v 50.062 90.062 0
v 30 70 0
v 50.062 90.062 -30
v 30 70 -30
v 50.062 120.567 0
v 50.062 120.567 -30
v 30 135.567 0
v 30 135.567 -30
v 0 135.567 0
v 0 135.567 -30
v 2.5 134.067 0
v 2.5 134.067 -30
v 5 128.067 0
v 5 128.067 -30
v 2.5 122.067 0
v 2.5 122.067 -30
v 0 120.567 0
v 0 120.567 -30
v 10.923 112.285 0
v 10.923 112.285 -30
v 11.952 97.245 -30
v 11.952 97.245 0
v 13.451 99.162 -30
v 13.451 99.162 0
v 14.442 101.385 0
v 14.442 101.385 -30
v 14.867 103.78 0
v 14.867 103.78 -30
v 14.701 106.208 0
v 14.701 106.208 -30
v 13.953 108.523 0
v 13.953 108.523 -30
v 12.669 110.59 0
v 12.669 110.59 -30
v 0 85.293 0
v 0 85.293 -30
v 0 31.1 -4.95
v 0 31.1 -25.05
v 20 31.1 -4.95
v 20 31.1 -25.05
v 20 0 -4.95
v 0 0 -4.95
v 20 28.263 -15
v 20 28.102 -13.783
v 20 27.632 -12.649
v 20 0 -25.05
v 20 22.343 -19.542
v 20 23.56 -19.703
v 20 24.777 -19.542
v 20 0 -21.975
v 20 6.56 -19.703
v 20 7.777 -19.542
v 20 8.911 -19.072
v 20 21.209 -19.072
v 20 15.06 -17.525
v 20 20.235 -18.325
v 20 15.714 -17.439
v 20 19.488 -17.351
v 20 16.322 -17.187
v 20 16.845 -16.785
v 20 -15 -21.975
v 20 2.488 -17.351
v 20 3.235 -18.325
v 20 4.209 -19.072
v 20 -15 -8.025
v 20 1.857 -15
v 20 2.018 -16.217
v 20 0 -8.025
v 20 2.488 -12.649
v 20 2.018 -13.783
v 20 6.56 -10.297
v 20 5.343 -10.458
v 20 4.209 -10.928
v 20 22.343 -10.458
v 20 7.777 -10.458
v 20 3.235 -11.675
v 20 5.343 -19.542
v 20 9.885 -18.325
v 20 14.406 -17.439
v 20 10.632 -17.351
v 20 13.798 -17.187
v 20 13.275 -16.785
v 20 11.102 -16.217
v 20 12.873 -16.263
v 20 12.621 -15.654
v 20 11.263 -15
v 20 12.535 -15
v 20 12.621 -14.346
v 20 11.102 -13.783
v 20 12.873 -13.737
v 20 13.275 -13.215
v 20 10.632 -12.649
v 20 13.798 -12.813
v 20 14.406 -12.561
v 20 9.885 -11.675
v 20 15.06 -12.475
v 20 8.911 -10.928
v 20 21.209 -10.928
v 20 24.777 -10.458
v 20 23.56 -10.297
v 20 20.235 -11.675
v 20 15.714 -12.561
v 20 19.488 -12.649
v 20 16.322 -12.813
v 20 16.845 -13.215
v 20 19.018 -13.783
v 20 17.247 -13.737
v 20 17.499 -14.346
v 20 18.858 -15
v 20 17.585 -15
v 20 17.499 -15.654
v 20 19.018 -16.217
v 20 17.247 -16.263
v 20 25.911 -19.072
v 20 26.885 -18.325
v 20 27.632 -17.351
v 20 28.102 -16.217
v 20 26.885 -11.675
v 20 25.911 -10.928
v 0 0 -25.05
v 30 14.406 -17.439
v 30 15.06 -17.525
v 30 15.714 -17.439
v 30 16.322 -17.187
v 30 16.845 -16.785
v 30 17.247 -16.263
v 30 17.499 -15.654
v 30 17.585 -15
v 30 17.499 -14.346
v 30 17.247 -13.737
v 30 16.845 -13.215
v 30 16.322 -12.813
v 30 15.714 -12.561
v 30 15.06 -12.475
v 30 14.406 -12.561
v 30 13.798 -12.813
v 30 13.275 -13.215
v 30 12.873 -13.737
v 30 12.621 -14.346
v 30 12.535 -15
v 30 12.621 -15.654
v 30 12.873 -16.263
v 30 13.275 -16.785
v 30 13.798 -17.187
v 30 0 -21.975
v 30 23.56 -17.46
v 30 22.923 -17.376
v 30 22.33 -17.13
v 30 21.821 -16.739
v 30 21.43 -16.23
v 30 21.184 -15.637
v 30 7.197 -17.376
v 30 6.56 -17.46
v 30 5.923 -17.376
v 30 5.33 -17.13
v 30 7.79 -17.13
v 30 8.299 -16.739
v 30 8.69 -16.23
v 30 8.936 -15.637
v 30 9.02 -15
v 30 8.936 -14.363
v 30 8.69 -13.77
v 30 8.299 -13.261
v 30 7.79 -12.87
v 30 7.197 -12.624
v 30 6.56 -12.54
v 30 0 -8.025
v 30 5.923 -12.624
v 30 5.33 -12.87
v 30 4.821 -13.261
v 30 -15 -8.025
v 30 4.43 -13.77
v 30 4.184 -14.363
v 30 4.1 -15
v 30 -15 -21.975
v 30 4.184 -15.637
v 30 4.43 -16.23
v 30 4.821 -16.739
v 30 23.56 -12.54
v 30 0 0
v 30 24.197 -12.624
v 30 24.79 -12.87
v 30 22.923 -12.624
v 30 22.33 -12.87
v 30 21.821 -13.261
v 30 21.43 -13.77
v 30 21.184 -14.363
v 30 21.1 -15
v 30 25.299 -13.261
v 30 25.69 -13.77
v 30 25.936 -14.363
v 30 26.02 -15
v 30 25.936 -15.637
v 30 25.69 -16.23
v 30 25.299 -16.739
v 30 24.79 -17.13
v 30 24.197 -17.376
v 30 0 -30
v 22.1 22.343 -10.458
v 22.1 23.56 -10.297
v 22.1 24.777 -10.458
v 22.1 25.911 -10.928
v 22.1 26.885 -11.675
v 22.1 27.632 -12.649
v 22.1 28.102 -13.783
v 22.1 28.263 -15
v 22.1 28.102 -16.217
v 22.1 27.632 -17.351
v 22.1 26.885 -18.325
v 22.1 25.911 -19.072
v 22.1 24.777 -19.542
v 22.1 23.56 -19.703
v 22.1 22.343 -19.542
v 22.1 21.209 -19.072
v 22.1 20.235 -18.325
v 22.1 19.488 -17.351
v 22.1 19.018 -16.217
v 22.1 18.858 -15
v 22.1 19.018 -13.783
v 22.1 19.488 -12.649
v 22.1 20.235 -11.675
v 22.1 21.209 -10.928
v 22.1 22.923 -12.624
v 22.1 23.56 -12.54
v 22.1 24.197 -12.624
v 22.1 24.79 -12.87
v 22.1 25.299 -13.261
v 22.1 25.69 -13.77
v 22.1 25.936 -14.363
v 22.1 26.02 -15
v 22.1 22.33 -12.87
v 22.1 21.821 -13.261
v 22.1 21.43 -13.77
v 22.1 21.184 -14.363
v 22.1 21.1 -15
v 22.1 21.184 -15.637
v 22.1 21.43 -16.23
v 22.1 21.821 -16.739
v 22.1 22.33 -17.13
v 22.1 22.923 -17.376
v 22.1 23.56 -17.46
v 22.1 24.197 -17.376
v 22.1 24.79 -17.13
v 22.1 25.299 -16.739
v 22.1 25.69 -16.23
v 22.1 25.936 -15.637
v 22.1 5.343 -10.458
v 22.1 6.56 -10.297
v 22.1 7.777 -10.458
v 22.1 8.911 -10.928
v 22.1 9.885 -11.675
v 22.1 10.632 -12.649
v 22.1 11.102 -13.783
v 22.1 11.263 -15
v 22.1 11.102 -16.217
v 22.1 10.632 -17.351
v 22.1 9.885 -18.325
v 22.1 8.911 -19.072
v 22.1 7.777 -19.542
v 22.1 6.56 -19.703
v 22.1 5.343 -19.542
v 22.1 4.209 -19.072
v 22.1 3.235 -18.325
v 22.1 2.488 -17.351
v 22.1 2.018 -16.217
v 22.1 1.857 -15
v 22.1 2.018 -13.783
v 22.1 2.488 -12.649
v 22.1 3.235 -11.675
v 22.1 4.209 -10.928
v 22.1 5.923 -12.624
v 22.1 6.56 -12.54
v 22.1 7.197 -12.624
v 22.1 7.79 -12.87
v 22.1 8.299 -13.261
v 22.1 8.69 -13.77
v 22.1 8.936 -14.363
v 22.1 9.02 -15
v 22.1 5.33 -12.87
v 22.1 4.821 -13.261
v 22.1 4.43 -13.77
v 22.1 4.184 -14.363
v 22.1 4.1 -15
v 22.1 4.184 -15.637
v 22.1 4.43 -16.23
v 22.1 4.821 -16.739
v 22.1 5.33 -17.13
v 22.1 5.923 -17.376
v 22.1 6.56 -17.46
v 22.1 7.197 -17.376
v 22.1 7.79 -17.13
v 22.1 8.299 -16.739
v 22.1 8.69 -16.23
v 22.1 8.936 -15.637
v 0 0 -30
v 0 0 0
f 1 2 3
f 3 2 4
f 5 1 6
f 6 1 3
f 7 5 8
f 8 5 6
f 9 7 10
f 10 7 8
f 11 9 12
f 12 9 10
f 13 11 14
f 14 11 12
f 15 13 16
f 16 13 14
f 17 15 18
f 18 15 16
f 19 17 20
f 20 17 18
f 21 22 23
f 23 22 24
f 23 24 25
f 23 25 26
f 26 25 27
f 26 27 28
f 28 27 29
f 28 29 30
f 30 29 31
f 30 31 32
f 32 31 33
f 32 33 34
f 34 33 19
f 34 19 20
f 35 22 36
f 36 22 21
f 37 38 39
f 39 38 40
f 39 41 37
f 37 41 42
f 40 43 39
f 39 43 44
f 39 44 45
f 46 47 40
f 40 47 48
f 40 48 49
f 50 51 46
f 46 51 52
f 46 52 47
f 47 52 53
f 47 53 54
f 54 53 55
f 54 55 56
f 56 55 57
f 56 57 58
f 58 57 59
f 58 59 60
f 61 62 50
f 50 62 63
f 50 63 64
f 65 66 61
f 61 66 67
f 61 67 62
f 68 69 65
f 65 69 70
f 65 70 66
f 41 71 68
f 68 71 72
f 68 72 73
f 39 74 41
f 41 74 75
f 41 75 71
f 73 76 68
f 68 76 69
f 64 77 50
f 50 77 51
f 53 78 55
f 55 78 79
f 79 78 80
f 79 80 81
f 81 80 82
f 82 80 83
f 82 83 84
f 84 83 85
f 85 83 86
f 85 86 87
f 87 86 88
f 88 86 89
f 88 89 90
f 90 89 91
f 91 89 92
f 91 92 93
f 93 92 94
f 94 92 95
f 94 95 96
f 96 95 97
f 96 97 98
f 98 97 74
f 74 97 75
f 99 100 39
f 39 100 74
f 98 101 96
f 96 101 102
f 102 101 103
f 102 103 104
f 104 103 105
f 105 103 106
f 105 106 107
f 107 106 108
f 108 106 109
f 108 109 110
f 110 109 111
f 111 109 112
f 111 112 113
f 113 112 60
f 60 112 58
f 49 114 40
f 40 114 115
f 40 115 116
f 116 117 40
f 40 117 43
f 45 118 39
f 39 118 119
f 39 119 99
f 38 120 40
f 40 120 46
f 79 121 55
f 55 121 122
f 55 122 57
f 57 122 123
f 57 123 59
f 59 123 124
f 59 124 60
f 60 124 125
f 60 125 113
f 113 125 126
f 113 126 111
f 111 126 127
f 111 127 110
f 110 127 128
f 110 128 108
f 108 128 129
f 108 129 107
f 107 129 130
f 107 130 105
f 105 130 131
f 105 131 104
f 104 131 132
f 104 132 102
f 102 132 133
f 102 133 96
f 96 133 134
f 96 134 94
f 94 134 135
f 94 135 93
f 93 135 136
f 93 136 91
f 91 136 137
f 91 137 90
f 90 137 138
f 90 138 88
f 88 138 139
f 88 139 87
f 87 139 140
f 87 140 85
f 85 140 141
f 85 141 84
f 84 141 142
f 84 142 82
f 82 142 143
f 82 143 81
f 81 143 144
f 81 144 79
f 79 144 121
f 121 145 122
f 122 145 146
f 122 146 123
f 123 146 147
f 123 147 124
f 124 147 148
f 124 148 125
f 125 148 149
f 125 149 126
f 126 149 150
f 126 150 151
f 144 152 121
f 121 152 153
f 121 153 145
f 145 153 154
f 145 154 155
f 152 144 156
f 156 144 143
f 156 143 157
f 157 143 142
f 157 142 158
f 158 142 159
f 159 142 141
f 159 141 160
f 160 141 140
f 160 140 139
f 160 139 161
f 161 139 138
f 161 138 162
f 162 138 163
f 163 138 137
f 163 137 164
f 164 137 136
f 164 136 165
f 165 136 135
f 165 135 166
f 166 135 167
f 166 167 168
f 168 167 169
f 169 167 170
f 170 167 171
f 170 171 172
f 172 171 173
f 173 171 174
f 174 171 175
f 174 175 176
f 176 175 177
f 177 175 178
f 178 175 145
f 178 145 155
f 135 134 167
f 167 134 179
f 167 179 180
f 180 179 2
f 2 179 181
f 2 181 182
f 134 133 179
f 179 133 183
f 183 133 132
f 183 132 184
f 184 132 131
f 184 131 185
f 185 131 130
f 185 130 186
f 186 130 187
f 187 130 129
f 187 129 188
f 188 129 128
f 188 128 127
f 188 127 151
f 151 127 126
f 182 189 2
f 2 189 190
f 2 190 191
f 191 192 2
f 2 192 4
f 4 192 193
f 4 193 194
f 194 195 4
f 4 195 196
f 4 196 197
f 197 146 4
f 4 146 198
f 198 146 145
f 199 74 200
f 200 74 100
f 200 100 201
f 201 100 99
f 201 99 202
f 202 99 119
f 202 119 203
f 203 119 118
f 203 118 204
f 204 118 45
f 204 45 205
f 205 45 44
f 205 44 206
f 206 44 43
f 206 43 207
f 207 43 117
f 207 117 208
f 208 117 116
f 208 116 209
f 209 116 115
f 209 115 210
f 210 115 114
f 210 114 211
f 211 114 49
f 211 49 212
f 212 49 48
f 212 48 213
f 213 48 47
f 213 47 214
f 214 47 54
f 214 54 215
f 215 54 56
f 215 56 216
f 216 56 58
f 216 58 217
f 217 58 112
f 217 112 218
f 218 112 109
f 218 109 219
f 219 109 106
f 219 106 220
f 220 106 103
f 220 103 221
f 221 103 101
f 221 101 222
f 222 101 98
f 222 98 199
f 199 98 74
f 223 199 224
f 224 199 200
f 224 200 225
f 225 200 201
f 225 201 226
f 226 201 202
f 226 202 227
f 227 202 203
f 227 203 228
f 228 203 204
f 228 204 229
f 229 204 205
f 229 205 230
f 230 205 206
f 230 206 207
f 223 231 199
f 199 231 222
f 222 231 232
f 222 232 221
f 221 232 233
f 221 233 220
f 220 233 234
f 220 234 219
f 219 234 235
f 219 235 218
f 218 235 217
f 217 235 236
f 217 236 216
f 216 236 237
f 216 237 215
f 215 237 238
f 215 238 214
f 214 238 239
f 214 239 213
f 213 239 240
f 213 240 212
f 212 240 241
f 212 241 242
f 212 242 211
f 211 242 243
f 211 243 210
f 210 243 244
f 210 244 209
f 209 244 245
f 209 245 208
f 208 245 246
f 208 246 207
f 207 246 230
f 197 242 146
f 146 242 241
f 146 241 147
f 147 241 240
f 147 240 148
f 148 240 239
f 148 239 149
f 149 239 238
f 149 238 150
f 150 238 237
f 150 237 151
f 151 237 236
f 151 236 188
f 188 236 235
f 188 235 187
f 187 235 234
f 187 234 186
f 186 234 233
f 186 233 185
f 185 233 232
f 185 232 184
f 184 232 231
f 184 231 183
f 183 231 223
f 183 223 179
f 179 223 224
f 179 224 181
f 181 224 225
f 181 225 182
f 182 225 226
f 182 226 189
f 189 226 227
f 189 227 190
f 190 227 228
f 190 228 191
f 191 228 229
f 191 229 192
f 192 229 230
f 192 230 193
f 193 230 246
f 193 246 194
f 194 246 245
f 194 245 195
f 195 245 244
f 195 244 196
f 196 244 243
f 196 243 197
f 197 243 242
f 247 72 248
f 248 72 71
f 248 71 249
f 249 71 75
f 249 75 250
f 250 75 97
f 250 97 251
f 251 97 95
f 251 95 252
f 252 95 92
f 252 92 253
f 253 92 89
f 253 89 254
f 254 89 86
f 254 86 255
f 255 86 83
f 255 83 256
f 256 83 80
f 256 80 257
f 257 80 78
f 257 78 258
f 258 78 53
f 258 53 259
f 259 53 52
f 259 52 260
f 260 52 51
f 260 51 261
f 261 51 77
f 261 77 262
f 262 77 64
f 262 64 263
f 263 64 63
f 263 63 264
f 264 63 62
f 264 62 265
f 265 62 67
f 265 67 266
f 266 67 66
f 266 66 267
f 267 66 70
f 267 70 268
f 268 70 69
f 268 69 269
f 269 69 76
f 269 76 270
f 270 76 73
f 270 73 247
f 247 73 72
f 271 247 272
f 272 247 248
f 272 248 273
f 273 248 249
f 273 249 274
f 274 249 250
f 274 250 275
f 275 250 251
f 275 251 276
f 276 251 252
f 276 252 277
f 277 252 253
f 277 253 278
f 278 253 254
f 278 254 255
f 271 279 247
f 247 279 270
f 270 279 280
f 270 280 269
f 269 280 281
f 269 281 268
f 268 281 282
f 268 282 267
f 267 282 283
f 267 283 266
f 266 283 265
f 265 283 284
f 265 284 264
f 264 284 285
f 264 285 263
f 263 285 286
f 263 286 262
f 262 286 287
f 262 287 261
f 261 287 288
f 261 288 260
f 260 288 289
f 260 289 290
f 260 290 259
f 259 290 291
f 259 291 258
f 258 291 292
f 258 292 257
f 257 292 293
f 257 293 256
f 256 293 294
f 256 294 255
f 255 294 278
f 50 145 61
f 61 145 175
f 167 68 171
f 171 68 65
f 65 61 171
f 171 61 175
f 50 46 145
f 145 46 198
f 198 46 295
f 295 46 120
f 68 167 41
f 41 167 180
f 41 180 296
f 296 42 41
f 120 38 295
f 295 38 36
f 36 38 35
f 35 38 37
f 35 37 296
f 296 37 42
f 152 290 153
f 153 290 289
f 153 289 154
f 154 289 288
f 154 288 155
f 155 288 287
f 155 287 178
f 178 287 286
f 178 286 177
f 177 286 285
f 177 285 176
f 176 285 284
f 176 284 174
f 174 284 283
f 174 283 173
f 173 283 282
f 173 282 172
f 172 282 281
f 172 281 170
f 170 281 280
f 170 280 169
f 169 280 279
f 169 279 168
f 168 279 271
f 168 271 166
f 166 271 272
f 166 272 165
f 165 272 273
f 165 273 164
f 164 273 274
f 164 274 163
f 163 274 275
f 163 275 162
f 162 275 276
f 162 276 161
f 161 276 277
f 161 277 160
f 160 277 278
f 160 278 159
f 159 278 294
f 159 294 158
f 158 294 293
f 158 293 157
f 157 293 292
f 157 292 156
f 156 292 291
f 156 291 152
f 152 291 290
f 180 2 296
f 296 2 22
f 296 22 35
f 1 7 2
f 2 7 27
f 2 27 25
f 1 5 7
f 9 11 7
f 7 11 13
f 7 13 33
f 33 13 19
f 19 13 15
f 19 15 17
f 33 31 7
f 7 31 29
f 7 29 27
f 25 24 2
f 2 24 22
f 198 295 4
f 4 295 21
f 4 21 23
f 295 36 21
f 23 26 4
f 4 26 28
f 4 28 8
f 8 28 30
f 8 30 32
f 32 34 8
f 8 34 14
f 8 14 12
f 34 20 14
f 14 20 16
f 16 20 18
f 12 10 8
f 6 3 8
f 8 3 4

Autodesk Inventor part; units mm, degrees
ref_plane "YZ Plane" through (0, 0, 0) normal (1, 0, 0) x (0, 1, 0)
ref_plane "XZ Plane" through (0, 0, 0) normal (0, 1, 0) x (-1, 0, 0)
ref_plane "XY Plane" through (0, 0, 0) normal (0, 0, 1) x (1, 0, 0)
sketch "Sketch1" plane through (0, 0, 0) normal (0, 0, 1) x (1, 0, 0)
  line L0 (0, 0) -> (25, 0)
  line L1 (25, 0) -> (25, 40)
  line L2 (25, 40) -> (0, 40)
  line L3 (0, 40) -> (0, 0)
  dimension "d1" = 25
  dimension "d2" = 40
  dimension "d3" = 25
extrude "Extrusion1" add sketch "Sketch1" against normal blind 30
sketch "Sketch2" plane through (25, 0, 0) normal (1, 0, 0) x (0, 0, -1)
  line L0 (0, 0) -> (30, 0) projected
  circle A0 centre (15, 6.56) radius 2.46
extrude "Extrusion2" cut sketch "Sketch2" against normal blind 30
sketch "Sketch3" plane through (0, 0, 0) normal (-1, 0, 0) x (0, 0, 1)
  line L0 (0, 0) -> (-30, 0) projected
  line L1 (-25.05, 0) -> (-4.95, 0)
  line L2 (-4.95, 0) -> (-4.95, 33.12)
  line L3 (-4.95, 33.12) -> (-25.05, 33.12)
  line L4 (-25.05, 33.12) -> (-25.05, 0)
  dimension "d11" = 20.1
extrude "Extrusion3" cut sketch "Sketch3" against normal blind 20
sketch "Sketch4" plane through (0, 0, 0) normal (0, -1, 0) x (1, 0, 0)
  line L0 (20, -4.95) -> (20, -25.05) projected
  line L1 (20, -15) -> (25, -15)
  line L2 (25, 0) -> (25, -30) projected
  line L3 (20, -8.025) -> (25, -8.025)
  line L4 (25, -8.025) -> (25, -21.975)
  line L5 (25, -21.975) -> (20, -21.975)
  line L6 (20, -21.975) -> (20, -8.025)
  line L7 (20, -8.025) -> (25, -21.975) construction
  line L8 (25, -8.025) -> (20, -21.975) construction
  line L9 (25, -12.54) -> (25, -17.46) projected
  point P0 (0, 0)
  point P1 (22.5, -15)
  dimension "d14" = 13.95
extrude "Extrusion4" add sketch "Sketch4" along normal blind 15
sketch "Sketch5" plane through (20, 0, 0) normal (-1, 0, 0) x (0, 0, 1)
  circle A0 centre (-15, 6.56) radius 2.46 projected
  circle A1 centre (-15, 6.56) radius 4.7025
  circle A2 centre (-15, 6.56) radius 2.46 projected
  circle A3 centre (-15, 6.56) radius 2.46
  point P0 (0, 0)
  dimension "d17" = 9.405
extrude "Extrusion5" cut sketch "Sketch5" against normal blind 2.1
sketch "Sketch6" plane through (25, 0, 0) normal (1, 0, 0) x (0, 0, -1)
  circle A0 centre (15, 6.56) radius 4.7025 projected
  line L0 (15, 6.56) -> (15, 23.56)
  circle A1 centre (15, 23.56) radius 2.46
  point P0 (0, 0)
  dimension "d20" = 17
  dimension "d21" = 4.92
extrude "Extrusion6" cut sketch "Sketch6" against normal blind 10 contours A1
sketch "Sketch7" plane through (20, 0, 0) normal (-1, 0, 0) x (0, 0, 1)
  circle A0 centre (-15, 23.56) radius 2.46 projected
  circle A1 centre (-15, 23.56) radius 4.7025
  point P0 (0, 0)
  dimension "d24" = 9.405
extrude "Extrusion7" cut sketch "Sketch7" against normal blind 2.1
sketch "Sketch9" plane through (25, 0, 0) normal (1, 0, 0) x (0, 0, -1)
  circle A0 centre (15, 6.56) radius 2.46 projected
  circle A1 centre (15, 6.56) radius 2.46
  circle A2 centre (15, 23.56) radius 2.46 projected
  circle A3 centre (15, 23.56) radius 2.46
  line L0 (30, 40) -> (30, 0) projected
  line L1 (30, 0) -> (30, 40)
  line L2 (30, 40) -> (0, 40)
  line L3 (0, 40) -> (0, 0)
  line L4 (0, 0) -> (8.025, 0) projected
  line L5 (21.975, 0) -> (21.975, -15)
  line L6 (21.975, -15) -> (8.025, -15)
  line L7 (8.025, -15) -> (8.025, 0)
  line L8 (0, 0) -> (8.025, 0)
  line L9 (21.975, 0) -> (30, 0)
extrude "Extrusion8" add sketch "Sketch9" along normal blind 5
sketch "Sketch10" plane through (0, 40, 0) normal (0, 1, 0) x (1, 0, 0)
  line L0 (0, 30) -> (30, 30) projected
  line L1 (30, 0) -> (0, 0) projected
  line L2 (0, 30) -> (30, 30)
  line L3 (30, 30) -> (30, 0)
  line L4 (30, 0) -> (0, 0)
  line L5 (0, 0) -> (0, 30)
extrude "Extrusion9" add sketch "Sketch10" along normal blind 30
sketch "Sketch12" plane through (30, 0, 0) normal (1, 0, 0) x (0, 0, -1)
  circle A0 centre (15, 6.56) radius 2.46 projected
  line L0 (15, 6.56) -> (15, 15.06)
  circle A1 centre (15, 15.06) radius 2.525
  point P0 (0, 0)
  dimension "d31" = 8.5
  dimension "d33" = 5.05
extrude "Extrusion10" cut sketch "Sketch12" against normal blind 30 contours A1
sketch "Sketch15" plane through (0, 0, -25.05) normal (-1, 0, 0) x (0, 0, 1)
  line L0 (0, 33.12) -> (20.1, 33.12) projected
  line L1 (20.1, 33.12) -> (20.1, 0) projected
  line L2 (0, 33.12) -> (20.1, 33.12)
  line L3 (20.1, 33.12) -> (20.1, 31.1)
  line L4 (20.1, 31.1) -> (0, 31.1)
  line L5 (0, 31.1) -> (0, 33.12)
  point P0 (25.05, 0)
  dimension "d57" = 2.02
extrude "Extrusion13" add sketch "Sketch15" against normal blind 20
sketch "Sketch17" plane through (0, 0, 0) normal (0, 0, 1) x (1, 0, 0)
  line L0 (0, 70) -> (30, 70) projected
  line L1 (30, 70) -> (50.0622, 90.0622)
  line L2 (30, 70) -> (80, 70) construction
  line L3 (11.9522, 97.2454) -> (0, 85.2932)
  line L4 (0, 70) -> (0, 85.2932)
  line L5 (0, 70) -> (0, 0) projected
  line L6 (0, 70) -> (30, 70)
  line L7 (10.923, 112.2849) -> (0, 120.567)
  line L8 (2.5, 134.067) -> (0, 135.567)
  line L9 (2.5, 134.067) -> (5, 128.067)
  line L10 (2.5, 122.067) -> (0, 120.567)
  line L11 (2.5, 122.067) -> (5, 128.067)
  line L12 (50.0622, 105.3553) -> (50.0622, 120.567)
  line L13 (50.0622, 105.3553) -> (50.0622, 90.0622)
  line L14 (0, 135.567) -> (30, 135.567)
  line L15 (30, 135.567) -> (50.0622, 120.567)
  arc A0 (11.9522, 97.2454) -> (10.923, 112.2849) centre (4.8811, 104.3165) ccw
  dimension "d61" = 45
  dimension "d62" = 32.0271
  dimension "d71" = 30
  dimension "d72" = 10
extrude "Extrusion14" add sketch "Sketch17" against normal blind 30
properties part number "rec_c_12mm_x_30mm"
